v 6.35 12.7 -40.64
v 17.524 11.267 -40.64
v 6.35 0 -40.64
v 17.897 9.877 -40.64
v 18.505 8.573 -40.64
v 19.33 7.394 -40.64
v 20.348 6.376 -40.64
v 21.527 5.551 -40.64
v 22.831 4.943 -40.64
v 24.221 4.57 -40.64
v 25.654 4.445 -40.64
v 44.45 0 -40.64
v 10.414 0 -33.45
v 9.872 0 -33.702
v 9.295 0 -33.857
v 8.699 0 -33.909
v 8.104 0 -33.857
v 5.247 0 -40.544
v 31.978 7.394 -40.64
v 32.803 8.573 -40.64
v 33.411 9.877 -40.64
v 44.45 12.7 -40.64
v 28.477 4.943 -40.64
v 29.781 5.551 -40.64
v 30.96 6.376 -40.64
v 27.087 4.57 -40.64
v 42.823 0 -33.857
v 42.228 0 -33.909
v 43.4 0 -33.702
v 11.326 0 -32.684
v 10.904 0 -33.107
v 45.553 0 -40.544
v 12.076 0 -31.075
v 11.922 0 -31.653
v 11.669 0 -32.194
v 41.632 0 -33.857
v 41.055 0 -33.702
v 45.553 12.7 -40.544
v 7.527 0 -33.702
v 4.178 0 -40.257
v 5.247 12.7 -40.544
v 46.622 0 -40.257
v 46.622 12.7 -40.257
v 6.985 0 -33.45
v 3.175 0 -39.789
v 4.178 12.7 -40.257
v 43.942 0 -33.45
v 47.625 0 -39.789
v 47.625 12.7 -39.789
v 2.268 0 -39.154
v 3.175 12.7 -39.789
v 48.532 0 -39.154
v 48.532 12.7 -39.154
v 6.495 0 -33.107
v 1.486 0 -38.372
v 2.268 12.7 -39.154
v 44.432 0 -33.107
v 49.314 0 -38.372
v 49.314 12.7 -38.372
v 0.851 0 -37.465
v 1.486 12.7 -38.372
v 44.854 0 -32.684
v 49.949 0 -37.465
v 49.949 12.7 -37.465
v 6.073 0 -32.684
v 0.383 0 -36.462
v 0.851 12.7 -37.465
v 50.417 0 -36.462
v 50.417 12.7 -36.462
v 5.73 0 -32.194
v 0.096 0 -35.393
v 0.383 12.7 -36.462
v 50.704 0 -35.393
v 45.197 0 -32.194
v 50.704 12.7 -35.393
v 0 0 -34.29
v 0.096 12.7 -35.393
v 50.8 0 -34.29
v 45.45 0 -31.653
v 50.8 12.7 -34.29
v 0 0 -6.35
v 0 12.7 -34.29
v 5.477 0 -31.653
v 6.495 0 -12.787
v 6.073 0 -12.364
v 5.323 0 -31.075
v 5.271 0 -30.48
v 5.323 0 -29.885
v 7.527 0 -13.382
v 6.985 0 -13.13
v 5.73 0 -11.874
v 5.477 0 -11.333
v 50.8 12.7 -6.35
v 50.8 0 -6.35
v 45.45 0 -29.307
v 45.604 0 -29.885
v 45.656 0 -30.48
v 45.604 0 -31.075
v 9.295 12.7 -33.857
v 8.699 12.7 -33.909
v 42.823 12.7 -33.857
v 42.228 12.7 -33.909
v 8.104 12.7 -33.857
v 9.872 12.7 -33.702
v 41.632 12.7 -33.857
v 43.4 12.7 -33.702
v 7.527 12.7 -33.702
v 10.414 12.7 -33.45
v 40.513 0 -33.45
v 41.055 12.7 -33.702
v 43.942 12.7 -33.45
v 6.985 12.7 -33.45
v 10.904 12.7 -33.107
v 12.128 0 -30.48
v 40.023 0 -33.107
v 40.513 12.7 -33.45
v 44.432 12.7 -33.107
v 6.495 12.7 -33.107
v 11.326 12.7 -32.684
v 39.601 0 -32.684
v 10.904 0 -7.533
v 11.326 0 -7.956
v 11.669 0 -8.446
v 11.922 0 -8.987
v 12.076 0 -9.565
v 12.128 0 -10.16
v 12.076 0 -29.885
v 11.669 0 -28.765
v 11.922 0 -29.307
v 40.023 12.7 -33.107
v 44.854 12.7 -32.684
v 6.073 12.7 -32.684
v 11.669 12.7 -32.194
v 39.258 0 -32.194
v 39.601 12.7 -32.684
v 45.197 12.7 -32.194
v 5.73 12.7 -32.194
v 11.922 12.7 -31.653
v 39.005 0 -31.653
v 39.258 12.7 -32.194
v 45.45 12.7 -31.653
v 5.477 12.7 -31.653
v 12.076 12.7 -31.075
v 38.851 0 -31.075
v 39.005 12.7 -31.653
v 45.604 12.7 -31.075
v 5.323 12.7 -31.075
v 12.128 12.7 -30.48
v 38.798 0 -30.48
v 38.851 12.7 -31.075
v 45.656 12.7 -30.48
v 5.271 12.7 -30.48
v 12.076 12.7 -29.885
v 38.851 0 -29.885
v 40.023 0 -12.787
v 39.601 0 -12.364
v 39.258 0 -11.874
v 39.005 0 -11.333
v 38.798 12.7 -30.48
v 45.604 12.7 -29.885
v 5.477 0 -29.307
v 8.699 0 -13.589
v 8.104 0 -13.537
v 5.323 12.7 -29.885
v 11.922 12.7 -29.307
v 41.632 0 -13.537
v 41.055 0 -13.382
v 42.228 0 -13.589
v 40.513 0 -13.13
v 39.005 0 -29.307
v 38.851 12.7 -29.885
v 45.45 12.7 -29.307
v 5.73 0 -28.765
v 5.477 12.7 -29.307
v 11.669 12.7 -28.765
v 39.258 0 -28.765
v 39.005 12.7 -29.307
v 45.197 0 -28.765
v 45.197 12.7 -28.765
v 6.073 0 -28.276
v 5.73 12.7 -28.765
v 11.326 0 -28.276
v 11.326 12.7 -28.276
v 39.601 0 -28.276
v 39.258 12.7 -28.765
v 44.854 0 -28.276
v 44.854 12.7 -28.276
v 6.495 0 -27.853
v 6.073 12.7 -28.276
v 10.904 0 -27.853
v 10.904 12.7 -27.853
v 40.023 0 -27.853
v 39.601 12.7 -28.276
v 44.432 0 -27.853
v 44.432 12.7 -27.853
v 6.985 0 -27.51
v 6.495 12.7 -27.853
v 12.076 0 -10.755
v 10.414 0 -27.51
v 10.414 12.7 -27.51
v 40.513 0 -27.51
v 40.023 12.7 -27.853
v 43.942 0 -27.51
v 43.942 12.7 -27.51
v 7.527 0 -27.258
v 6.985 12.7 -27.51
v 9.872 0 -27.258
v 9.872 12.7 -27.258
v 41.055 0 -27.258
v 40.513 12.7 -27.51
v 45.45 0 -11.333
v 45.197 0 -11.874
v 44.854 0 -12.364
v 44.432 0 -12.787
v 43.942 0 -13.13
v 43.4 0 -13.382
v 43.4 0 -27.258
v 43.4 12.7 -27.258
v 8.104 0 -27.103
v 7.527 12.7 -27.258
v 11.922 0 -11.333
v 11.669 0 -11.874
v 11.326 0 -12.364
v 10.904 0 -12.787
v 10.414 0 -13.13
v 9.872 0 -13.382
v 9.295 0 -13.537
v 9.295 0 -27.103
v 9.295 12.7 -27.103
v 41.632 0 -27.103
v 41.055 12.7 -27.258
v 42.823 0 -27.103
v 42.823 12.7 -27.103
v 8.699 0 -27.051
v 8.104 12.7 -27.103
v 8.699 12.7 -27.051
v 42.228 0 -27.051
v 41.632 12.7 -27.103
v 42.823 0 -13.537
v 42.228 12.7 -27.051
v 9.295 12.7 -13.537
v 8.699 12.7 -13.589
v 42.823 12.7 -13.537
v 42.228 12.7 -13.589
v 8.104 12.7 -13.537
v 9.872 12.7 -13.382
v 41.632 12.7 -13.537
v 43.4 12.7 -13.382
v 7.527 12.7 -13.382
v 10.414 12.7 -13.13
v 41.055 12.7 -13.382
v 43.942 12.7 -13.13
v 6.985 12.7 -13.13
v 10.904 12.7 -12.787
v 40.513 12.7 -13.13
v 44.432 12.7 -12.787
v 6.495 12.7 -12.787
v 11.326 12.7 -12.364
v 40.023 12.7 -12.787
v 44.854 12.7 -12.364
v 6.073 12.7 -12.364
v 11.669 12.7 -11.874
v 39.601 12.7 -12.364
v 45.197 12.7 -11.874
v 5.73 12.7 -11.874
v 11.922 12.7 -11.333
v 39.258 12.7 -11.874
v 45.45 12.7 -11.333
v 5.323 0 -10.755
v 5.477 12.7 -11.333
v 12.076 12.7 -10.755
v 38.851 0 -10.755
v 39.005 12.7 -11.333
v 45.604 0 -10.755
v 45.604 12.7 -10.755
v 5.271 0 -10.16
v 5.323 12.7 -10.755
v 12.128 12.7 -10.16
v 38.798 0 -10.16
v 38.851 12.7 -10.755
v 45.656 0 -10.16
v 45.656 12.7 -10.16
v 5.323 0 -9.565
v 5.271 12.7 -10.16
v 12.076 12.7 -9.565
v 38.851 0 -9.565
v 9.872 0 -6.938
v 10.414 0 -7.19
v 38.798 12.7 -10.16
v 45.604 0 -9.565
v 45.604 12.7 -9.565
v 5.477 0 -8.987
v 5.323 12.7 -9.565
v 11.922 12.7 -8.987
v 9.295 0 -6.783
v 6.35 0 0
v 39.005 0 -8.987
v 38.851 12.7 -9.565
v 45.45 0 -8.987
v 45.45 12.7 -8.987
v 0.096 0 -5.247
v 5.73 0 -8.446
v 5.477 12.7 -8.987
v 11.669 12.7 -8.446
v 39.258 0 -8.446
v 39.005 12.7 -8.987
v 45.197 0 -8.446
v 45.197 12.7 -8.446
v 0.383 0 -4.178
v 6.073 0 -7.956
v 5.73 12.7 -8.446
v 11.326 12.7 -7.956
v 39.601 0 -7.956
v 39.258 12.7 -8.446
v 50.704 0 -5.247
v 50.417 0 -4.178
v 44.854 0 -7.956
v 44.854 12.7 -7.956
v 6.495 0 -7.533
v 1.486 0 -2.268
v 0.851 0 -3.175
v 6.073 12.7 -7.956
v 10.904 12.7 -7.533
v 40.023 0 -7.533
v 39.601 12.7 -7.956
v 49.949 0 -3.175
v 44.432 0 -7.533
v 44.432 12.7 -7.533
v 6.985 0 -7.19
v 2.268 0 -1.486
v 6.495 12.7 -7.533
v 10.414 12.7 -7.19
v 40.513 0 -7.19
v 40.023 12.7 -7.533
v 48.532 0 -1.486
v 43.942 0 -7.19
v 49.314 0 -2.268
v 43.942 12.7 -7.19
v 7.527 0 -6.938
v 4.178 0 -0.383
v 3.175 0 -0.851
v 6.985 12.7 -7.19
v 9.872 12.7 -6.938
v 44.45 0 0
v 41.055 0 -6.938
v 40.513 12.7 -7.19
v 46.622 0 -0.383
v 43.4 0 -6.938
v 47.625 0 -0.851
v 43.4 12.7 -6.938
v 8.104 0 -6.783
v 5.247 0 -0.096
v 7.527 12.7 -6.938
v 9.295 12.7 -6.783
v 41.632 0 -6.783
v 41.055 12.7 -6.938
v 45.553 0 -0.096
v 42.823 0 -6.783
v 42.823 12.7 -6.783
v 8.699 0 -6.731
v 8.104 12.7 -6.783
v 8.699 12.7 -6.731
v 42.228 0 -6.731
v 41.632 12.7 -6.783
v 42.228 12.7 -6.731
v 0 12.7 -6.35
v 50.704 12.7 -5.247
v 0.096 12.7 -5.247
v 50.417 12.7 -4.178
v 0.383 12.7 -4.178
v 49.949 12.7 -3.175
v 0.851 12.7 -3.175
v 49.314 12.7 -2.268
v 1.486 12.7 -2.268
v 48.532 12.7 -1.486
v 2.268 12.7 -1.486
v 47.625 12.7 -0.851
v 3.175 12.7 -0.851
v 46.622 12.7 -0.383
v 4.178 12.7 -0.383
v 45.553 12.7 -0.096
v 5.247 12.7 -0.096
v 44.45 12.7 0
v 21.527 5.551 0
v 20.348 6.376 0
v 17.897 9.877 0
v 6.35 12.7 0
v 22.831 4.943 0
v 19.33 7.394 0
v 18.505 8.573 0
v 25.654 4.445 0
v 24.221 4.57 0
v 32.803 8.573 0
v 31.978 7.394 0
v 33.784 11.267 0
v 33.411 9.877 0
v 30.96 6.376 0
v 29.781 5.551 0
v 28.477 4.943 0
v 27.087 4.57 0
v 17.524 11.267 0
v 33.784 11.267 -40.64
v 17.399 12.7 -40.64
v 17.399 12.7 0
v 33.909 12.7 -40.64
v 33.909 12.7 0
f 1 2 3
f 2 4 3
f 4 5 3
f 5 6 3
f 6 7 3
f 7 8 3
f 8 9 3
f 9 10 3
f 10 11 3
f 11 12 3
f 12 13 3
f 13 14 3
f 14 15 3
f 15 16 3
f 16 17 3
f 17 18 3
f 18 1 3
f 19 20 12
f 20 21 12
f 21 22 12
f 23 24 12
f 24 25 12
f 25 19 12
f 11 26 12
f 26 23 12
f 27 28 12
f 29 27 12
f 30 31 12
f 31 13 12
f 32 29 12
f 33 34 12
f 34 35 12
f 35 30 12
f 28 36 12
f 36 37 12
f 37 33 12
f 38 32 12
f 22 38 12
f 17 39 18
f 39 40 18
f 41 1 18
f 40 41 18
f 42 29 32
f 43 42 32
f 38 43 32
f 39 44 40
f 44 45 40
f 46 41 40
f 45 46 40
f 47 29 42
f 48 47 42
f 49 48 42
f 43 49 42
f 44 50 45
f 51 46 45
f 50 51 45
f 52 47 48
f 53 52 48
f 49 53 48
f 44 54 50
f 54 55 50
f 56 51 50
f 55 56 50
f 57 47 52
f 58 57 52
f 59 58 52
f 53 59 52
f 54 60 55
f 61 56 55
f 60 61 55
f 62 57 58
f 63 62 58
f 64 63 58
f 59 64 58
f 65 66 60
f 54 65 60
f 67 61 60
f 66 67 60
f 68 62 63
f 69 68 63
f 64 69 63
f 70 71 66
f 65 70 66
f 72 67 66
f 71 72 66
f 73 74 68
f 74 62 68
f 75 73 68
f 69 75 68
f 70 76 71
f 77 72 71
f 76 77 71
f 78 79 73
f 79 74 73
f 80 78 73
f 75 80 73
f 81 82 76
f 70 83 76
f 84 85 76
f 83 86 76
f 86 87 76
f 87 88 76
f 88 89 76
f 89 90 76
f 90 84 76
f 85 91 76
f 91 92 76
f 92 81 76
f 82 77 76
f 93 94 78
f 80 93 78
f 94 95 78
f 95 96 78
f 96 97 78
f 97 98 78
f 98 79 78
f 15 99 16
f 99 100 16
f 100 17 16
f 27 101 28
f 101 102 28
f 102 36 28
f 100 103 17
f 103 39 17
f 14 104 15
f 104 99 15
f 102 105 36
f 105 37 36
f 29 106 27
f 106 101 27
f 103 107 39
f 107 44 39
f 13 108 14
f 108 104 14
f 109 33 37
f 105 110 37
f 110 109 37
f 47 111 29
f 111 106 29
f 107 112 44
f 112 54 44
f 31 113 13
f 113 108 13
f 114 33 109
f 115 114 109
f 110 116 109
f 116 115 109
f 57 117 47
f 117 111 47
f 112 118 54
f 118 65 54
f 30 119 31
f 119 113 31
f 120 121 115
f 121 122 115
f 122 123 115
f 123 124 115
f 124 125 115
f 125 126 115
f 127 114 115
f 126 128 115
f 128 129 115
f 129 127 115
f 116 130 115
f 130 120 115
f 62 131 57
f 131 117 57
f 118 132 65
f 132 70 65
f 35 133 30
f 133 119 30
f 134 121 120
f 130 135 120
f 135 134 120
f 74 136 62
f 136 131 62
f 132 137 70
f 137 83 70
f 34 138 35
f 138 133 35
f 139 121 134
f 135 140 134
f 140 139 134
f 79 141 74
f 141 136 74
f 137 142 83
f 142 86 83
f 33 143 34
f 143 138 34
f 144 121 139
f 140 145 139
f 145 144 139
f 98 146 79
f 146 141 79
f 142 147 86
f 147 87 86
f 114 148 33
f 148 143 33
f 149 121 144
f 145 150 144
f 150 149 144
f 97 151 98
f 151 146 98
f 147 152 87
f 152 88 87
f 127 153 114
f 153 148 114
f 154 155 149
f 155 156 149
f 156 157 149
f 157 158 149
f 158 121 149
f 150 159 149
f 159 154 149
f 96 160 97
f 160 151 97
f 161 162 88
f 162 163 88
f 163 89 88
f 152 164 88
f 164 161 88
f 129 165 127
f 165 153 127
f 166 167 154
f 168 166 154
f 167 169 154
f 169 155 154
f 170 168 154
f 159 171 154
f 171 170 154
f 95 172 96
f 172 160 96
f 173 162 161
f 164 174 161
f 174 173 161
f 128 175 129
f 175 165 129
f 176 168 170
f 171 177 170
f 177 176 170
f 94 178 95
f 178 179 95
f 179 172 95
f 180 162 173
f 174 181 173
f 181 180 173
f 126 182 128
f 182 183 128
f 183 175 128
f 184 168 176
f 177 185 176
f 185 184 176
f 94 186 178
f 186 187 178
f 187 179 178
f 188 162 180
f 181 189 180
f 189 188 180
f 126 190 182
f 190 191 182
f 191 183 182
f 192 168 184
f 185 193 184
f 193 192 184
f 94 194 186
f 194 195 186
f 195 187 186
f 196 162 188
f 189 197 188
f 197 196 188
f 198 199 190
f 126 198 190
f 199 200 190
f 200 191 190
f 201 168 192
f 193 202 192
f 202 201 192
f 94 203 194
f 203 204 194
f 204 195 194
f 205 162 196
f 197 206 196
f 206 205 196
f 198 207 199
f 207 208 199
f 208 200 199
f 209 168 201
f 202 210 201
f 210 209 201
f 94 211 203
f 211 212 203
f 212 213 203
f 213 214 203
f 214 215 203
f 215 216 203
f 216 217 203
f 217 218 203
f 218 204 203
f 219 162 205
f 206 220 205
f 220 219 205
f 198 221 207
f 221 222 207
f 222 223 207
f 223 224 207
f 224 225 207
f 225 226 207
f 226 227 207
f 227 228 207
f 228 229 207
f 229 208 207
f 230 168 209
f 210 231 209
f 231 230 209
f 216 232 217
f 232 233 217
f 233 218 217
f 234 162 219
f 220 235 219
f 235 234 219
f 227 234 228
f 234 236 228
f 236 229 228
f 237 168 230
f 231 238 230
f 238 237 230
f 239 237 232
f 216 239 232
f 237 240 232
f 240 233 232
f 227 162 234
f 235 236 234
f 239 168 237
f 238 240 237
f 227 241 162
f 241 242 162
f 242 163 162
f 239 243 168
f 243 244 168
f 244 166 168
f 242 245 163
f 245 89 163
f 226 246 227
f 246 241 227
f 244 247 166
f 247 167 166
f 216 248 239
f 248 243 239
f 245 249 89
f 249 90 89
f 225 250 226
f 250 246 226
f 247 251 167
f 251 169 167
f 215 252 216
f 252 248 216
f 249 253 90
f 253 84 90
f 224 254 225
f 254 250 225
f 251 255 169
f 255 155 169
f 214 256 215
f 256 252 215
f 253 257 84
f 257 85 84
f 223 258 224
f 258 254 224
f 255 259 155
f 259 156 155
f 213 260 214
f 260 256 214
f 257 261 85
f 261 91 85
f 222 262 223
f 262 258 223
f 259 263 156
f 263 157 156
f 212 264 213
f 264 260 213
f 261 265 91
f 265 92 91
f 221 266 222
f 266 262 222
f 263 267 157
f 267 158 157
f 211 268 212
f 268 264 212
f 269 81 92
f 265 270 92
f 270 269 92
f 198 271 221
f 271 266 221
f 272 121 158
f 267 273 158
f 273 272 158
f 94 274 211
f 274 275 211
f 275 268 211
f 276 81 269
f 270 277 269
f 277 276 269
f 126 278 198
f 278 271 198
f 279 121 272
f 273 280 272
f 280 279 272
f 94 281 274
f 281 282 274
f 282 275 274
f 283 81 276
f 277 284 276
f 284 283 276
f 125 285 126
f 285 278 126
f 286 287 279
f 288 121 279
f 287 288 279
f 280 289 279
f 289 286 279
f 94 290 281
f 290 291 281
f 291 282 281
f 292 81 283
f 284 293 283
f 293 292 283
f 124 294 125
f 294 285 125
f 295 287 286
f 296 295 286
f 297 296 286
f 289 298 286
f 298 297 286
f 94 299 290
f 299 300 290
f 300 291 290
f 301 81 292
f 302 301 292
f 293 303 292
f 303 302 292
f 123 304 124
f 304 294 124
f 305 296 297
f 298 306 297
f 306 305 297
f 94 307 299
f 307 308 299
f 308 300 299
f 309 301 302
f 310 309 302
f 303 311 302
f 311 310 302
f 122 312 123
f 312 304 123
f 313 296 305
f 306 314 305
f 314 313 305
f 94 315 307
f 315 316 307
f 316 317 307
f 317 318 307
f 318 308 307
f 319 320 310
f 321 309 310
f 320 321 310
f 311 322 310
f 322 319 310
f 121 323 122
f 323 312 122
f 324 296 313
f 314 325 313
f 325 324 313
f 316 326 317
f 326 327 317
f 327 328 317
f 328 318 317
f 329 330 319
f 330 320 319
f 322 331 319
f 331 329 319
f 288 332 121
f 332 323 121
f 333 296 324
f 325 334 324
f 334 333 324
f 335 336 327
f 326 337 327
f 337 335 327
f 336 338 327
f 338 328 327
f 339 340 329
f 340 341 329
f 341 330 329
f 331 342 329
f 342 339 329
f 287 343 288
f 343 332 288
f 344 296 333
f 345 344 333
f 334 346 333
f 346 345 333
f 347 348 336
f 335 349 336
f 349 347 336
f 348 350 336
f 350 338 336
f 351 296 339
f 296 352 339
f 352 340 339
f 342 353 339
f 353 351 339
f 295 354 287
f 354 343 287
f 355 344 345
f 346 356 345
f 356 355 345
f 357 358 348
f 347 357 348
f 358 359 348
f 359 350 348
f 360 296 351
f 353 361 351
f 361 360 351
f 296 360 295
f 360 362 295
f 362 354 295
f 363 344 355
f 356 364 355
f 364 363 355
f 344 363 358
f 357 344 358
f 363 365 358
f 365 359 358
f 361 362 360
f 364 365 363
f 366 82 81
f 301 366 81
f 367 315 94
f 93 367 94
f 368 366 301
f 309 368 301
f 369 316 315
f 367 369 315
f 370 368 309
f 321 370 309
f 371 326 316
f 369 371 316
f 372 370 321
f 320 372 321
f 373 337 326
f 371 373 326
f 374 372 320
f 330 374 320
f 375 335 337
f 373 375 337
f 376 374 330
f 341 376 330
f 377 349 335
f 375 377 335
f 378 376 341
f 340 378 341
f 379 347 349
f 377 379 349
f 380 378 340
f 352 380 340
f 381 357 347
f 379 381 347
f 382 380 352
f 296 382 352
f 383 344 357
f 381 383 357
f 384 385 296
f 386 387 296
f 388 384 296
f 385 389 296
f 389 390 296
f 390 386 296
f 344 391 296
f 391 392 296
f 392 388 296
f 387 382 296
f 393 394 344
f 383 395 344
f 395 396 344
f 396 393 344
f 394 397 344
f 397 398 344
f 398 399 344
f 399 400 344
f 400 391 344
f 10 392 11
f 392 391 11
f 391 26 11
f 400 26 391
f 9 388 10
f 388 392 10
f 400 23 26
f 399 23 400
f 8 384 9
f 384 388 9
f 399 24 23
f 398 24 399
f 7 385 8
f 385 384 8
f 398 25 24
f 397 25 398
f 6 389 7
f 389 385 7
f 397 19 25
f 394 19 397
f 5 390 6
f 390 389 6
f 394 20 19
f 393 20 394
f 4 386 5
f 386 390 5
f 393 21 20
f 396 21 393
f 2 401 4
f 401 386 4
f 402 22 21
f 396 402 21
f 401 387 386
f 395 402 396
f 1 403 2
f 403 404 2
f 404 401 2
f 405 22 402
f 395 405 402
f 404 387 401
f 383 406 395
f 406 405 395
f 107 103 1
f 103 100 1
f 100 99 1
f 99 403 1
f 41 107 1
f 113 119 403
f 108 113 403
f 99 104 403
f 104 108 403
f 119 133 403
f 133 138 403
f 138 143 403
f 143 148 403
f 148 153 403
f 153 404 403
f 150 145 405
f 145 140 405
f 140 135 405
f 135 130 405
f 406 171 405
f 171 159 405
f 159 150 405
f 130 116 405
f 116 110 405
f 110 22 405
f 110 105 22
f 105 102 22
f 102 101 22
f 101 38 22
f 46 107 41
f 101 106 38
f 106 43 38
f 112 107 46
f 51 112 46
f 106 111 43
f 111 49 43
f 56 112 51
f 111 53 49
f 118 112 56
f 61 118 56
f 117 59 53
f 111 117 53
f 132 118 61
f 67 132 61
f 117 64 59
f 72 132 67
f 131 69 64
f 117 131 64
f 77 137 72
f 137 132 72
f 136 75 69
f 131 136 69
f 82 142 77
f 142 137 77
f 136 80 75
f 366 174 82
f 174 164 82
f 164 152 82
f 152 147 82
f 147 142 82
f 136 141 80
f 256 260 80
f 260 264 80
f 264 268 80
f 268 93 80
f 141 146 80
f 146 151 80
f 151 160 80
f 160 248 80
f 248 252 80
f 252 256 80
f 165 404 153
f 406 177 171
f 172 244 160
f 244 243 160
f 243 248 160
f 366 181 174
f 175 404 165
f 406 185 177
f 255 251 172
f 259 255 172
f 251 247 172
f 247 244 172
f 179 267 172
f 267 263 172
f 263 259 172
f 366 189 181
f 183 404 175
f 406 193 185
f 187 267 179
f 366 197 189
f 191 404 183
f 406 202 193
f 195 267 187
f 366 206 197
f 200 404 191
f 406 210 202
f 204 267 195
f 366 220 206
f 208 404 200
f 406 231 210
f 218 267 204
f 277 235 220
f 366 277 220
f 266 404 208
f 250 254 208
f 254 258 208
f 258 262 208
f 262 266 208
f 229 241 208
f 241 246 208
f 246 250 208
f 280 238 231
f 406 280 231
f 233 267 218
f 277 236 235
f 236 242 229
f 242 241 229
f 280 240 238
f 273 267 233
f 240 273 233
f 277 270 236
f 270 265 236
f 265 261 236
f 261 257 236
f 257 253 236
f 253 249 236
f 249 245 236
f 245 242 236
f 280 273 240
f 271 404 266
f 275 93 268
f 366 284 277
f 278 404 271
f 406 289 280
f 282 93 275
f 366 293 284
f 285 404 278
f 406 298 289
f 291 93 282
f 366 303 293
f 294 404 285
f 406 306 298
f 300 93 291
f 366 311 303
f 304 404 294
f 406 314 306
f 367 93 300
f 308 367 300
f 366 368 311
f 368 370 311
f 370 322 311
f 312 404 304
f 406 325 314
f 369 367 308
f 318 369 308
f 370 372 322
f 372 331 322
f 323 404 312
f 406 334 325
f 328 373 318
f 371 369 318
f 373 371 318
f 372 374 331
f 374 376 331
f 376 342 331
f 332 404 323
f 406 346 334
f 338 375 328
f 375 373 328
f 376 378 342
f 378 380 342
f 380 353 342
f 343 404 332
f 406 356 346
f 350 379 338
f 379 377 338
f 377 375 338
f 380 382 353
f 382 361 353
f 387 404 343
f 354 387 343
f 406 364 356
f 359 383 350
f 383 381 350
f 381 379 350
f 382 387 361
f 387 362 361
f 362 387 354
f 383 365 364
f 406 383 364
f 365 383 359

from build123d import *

# Parameters (mm, degrees)
SKETCH1_W               = 50.8
SKETCH1_H               = 40.64
BOSS_EXTRUDE1_DEPTH     = 12.7
CUT_EXTRUDE1_DEPTH      = 67.283780822
CUT_EXTRUDE1_DEPTH_BACK = 67.283780822
CUT_EXTRUDE2_DEPTH      = 67.283780822
CUT_EXTRUDE2_DEPTH_BACK = 67.283780822
SKETCH3_R               = 3.429
FILLET1_R               = 6.35


with BuildPart() as part:
    # Sketch1 → Boss-Extrude1 (new body)
    with BuildSketch(Plane(origin=(0, 0, 0), x_dir=(1, 0, 0), z_dir=(0, 1, 0))):
        with Locations((25.4, 20.32)):
            Rectangle(SKETCH1_W, SKETCH1_H)
    extrude(amount=BOSS_EXTRUDE1_DEPTH)

    # Sketch2 → Cut-Extrude1 (cut, two sides: drawn at the far end of the back side and taken through both)
    with BuildSketch(Plane.XY.offset(-CUT_EXTRUDE1_DEPTH_BACK)):
        with BuildLine():
            Line((33.909, 12.7), (25.4, 12.7))
            Line((25.4, 12.7), (25.4, 4.448908618))
            ThreePointArc((25.4, 4.448908618), (31.400662292, 6.773711322), (33.909, 12.7))
        make_face()
        with BuildLine():
            Line((25.4, 4.448908618), (25.4, 12.7))
            Line((25.4, 12.7), (17.399, 12.7))
            ThreePointArc((17.399, 12.7), (19.727711322, 6.953337708), (25.4, 4.448908618))
        make_face()
        with BuildLine():
            Line((33.909, 12.7), (25.4, 12.7))
            Line((25.4, 12.7), (25.4, 4.448908618))
            ThreePointArc((25.4, 4.448908618), (31.400662292, 6.773711322), (33.909, 12.7))
        make_face()
        with BuildLine():
            Line((25.4, 4.448908618), (25.4, 12.7))
            Line((25.4, 12.7), (17.399, 12.7))
            ThreePointArc((17.399, 12.7), (19.727711322, 6.953337708), (25.4, 4.448908618))
        make_face()
    extrude(amount=CUT_EXTRUDE1_DEPTH + CUT_EXTRUDE1_DEPTH_BACK, mode=Mode.SUBTRACT)

    # Sketch3 → Cut-Extrude2 (cut, two sides: drawn at the far end of the back side and taken through both)
    with BuildSketch(Plane(origin=(0, 12.7, 0), x_dir=(1, 0, 0), z_dir=(0, 1, 0)).offset(-CUT_EXTRUDE2_DEPTH_BACK)):
        with Locations(Location((8.6995, 10.16, 0), (0, 0, 270))):
            Circle(SKETCH3_R)
        with Locations(Location((42.2275, 10.16, 0), (0, 0, 270))):
            Circle(SKETCH3_R)
        with Locations(Location((42.2275, 30.48, 0), (0, 0, 270))):
            Circle(SKETCH3_R)
        with Locations(Location((8.6995, 30.48, 0), (0, 0, 270))):
            Circle(SKETCH3_R)
    extrude(amount=CUT_EXTRUDE2_DEPTH + CUT_EXTRUDE2_DEPTH_BACK, mode=Mode.SUBTRACT)

    # Fillet1
    fillet1_edges = [part.edges().sort_by_distance(p)[0] for p in [
        (0, 6.35, -40.64),
        (50.8, 6.35, -40.64),
        (50.8, 6.35, 0),
        (0, 6.35, 0),
    ]]
    fillet(fillet1_edges, radius=FILLET1_R)


solid = part.part
